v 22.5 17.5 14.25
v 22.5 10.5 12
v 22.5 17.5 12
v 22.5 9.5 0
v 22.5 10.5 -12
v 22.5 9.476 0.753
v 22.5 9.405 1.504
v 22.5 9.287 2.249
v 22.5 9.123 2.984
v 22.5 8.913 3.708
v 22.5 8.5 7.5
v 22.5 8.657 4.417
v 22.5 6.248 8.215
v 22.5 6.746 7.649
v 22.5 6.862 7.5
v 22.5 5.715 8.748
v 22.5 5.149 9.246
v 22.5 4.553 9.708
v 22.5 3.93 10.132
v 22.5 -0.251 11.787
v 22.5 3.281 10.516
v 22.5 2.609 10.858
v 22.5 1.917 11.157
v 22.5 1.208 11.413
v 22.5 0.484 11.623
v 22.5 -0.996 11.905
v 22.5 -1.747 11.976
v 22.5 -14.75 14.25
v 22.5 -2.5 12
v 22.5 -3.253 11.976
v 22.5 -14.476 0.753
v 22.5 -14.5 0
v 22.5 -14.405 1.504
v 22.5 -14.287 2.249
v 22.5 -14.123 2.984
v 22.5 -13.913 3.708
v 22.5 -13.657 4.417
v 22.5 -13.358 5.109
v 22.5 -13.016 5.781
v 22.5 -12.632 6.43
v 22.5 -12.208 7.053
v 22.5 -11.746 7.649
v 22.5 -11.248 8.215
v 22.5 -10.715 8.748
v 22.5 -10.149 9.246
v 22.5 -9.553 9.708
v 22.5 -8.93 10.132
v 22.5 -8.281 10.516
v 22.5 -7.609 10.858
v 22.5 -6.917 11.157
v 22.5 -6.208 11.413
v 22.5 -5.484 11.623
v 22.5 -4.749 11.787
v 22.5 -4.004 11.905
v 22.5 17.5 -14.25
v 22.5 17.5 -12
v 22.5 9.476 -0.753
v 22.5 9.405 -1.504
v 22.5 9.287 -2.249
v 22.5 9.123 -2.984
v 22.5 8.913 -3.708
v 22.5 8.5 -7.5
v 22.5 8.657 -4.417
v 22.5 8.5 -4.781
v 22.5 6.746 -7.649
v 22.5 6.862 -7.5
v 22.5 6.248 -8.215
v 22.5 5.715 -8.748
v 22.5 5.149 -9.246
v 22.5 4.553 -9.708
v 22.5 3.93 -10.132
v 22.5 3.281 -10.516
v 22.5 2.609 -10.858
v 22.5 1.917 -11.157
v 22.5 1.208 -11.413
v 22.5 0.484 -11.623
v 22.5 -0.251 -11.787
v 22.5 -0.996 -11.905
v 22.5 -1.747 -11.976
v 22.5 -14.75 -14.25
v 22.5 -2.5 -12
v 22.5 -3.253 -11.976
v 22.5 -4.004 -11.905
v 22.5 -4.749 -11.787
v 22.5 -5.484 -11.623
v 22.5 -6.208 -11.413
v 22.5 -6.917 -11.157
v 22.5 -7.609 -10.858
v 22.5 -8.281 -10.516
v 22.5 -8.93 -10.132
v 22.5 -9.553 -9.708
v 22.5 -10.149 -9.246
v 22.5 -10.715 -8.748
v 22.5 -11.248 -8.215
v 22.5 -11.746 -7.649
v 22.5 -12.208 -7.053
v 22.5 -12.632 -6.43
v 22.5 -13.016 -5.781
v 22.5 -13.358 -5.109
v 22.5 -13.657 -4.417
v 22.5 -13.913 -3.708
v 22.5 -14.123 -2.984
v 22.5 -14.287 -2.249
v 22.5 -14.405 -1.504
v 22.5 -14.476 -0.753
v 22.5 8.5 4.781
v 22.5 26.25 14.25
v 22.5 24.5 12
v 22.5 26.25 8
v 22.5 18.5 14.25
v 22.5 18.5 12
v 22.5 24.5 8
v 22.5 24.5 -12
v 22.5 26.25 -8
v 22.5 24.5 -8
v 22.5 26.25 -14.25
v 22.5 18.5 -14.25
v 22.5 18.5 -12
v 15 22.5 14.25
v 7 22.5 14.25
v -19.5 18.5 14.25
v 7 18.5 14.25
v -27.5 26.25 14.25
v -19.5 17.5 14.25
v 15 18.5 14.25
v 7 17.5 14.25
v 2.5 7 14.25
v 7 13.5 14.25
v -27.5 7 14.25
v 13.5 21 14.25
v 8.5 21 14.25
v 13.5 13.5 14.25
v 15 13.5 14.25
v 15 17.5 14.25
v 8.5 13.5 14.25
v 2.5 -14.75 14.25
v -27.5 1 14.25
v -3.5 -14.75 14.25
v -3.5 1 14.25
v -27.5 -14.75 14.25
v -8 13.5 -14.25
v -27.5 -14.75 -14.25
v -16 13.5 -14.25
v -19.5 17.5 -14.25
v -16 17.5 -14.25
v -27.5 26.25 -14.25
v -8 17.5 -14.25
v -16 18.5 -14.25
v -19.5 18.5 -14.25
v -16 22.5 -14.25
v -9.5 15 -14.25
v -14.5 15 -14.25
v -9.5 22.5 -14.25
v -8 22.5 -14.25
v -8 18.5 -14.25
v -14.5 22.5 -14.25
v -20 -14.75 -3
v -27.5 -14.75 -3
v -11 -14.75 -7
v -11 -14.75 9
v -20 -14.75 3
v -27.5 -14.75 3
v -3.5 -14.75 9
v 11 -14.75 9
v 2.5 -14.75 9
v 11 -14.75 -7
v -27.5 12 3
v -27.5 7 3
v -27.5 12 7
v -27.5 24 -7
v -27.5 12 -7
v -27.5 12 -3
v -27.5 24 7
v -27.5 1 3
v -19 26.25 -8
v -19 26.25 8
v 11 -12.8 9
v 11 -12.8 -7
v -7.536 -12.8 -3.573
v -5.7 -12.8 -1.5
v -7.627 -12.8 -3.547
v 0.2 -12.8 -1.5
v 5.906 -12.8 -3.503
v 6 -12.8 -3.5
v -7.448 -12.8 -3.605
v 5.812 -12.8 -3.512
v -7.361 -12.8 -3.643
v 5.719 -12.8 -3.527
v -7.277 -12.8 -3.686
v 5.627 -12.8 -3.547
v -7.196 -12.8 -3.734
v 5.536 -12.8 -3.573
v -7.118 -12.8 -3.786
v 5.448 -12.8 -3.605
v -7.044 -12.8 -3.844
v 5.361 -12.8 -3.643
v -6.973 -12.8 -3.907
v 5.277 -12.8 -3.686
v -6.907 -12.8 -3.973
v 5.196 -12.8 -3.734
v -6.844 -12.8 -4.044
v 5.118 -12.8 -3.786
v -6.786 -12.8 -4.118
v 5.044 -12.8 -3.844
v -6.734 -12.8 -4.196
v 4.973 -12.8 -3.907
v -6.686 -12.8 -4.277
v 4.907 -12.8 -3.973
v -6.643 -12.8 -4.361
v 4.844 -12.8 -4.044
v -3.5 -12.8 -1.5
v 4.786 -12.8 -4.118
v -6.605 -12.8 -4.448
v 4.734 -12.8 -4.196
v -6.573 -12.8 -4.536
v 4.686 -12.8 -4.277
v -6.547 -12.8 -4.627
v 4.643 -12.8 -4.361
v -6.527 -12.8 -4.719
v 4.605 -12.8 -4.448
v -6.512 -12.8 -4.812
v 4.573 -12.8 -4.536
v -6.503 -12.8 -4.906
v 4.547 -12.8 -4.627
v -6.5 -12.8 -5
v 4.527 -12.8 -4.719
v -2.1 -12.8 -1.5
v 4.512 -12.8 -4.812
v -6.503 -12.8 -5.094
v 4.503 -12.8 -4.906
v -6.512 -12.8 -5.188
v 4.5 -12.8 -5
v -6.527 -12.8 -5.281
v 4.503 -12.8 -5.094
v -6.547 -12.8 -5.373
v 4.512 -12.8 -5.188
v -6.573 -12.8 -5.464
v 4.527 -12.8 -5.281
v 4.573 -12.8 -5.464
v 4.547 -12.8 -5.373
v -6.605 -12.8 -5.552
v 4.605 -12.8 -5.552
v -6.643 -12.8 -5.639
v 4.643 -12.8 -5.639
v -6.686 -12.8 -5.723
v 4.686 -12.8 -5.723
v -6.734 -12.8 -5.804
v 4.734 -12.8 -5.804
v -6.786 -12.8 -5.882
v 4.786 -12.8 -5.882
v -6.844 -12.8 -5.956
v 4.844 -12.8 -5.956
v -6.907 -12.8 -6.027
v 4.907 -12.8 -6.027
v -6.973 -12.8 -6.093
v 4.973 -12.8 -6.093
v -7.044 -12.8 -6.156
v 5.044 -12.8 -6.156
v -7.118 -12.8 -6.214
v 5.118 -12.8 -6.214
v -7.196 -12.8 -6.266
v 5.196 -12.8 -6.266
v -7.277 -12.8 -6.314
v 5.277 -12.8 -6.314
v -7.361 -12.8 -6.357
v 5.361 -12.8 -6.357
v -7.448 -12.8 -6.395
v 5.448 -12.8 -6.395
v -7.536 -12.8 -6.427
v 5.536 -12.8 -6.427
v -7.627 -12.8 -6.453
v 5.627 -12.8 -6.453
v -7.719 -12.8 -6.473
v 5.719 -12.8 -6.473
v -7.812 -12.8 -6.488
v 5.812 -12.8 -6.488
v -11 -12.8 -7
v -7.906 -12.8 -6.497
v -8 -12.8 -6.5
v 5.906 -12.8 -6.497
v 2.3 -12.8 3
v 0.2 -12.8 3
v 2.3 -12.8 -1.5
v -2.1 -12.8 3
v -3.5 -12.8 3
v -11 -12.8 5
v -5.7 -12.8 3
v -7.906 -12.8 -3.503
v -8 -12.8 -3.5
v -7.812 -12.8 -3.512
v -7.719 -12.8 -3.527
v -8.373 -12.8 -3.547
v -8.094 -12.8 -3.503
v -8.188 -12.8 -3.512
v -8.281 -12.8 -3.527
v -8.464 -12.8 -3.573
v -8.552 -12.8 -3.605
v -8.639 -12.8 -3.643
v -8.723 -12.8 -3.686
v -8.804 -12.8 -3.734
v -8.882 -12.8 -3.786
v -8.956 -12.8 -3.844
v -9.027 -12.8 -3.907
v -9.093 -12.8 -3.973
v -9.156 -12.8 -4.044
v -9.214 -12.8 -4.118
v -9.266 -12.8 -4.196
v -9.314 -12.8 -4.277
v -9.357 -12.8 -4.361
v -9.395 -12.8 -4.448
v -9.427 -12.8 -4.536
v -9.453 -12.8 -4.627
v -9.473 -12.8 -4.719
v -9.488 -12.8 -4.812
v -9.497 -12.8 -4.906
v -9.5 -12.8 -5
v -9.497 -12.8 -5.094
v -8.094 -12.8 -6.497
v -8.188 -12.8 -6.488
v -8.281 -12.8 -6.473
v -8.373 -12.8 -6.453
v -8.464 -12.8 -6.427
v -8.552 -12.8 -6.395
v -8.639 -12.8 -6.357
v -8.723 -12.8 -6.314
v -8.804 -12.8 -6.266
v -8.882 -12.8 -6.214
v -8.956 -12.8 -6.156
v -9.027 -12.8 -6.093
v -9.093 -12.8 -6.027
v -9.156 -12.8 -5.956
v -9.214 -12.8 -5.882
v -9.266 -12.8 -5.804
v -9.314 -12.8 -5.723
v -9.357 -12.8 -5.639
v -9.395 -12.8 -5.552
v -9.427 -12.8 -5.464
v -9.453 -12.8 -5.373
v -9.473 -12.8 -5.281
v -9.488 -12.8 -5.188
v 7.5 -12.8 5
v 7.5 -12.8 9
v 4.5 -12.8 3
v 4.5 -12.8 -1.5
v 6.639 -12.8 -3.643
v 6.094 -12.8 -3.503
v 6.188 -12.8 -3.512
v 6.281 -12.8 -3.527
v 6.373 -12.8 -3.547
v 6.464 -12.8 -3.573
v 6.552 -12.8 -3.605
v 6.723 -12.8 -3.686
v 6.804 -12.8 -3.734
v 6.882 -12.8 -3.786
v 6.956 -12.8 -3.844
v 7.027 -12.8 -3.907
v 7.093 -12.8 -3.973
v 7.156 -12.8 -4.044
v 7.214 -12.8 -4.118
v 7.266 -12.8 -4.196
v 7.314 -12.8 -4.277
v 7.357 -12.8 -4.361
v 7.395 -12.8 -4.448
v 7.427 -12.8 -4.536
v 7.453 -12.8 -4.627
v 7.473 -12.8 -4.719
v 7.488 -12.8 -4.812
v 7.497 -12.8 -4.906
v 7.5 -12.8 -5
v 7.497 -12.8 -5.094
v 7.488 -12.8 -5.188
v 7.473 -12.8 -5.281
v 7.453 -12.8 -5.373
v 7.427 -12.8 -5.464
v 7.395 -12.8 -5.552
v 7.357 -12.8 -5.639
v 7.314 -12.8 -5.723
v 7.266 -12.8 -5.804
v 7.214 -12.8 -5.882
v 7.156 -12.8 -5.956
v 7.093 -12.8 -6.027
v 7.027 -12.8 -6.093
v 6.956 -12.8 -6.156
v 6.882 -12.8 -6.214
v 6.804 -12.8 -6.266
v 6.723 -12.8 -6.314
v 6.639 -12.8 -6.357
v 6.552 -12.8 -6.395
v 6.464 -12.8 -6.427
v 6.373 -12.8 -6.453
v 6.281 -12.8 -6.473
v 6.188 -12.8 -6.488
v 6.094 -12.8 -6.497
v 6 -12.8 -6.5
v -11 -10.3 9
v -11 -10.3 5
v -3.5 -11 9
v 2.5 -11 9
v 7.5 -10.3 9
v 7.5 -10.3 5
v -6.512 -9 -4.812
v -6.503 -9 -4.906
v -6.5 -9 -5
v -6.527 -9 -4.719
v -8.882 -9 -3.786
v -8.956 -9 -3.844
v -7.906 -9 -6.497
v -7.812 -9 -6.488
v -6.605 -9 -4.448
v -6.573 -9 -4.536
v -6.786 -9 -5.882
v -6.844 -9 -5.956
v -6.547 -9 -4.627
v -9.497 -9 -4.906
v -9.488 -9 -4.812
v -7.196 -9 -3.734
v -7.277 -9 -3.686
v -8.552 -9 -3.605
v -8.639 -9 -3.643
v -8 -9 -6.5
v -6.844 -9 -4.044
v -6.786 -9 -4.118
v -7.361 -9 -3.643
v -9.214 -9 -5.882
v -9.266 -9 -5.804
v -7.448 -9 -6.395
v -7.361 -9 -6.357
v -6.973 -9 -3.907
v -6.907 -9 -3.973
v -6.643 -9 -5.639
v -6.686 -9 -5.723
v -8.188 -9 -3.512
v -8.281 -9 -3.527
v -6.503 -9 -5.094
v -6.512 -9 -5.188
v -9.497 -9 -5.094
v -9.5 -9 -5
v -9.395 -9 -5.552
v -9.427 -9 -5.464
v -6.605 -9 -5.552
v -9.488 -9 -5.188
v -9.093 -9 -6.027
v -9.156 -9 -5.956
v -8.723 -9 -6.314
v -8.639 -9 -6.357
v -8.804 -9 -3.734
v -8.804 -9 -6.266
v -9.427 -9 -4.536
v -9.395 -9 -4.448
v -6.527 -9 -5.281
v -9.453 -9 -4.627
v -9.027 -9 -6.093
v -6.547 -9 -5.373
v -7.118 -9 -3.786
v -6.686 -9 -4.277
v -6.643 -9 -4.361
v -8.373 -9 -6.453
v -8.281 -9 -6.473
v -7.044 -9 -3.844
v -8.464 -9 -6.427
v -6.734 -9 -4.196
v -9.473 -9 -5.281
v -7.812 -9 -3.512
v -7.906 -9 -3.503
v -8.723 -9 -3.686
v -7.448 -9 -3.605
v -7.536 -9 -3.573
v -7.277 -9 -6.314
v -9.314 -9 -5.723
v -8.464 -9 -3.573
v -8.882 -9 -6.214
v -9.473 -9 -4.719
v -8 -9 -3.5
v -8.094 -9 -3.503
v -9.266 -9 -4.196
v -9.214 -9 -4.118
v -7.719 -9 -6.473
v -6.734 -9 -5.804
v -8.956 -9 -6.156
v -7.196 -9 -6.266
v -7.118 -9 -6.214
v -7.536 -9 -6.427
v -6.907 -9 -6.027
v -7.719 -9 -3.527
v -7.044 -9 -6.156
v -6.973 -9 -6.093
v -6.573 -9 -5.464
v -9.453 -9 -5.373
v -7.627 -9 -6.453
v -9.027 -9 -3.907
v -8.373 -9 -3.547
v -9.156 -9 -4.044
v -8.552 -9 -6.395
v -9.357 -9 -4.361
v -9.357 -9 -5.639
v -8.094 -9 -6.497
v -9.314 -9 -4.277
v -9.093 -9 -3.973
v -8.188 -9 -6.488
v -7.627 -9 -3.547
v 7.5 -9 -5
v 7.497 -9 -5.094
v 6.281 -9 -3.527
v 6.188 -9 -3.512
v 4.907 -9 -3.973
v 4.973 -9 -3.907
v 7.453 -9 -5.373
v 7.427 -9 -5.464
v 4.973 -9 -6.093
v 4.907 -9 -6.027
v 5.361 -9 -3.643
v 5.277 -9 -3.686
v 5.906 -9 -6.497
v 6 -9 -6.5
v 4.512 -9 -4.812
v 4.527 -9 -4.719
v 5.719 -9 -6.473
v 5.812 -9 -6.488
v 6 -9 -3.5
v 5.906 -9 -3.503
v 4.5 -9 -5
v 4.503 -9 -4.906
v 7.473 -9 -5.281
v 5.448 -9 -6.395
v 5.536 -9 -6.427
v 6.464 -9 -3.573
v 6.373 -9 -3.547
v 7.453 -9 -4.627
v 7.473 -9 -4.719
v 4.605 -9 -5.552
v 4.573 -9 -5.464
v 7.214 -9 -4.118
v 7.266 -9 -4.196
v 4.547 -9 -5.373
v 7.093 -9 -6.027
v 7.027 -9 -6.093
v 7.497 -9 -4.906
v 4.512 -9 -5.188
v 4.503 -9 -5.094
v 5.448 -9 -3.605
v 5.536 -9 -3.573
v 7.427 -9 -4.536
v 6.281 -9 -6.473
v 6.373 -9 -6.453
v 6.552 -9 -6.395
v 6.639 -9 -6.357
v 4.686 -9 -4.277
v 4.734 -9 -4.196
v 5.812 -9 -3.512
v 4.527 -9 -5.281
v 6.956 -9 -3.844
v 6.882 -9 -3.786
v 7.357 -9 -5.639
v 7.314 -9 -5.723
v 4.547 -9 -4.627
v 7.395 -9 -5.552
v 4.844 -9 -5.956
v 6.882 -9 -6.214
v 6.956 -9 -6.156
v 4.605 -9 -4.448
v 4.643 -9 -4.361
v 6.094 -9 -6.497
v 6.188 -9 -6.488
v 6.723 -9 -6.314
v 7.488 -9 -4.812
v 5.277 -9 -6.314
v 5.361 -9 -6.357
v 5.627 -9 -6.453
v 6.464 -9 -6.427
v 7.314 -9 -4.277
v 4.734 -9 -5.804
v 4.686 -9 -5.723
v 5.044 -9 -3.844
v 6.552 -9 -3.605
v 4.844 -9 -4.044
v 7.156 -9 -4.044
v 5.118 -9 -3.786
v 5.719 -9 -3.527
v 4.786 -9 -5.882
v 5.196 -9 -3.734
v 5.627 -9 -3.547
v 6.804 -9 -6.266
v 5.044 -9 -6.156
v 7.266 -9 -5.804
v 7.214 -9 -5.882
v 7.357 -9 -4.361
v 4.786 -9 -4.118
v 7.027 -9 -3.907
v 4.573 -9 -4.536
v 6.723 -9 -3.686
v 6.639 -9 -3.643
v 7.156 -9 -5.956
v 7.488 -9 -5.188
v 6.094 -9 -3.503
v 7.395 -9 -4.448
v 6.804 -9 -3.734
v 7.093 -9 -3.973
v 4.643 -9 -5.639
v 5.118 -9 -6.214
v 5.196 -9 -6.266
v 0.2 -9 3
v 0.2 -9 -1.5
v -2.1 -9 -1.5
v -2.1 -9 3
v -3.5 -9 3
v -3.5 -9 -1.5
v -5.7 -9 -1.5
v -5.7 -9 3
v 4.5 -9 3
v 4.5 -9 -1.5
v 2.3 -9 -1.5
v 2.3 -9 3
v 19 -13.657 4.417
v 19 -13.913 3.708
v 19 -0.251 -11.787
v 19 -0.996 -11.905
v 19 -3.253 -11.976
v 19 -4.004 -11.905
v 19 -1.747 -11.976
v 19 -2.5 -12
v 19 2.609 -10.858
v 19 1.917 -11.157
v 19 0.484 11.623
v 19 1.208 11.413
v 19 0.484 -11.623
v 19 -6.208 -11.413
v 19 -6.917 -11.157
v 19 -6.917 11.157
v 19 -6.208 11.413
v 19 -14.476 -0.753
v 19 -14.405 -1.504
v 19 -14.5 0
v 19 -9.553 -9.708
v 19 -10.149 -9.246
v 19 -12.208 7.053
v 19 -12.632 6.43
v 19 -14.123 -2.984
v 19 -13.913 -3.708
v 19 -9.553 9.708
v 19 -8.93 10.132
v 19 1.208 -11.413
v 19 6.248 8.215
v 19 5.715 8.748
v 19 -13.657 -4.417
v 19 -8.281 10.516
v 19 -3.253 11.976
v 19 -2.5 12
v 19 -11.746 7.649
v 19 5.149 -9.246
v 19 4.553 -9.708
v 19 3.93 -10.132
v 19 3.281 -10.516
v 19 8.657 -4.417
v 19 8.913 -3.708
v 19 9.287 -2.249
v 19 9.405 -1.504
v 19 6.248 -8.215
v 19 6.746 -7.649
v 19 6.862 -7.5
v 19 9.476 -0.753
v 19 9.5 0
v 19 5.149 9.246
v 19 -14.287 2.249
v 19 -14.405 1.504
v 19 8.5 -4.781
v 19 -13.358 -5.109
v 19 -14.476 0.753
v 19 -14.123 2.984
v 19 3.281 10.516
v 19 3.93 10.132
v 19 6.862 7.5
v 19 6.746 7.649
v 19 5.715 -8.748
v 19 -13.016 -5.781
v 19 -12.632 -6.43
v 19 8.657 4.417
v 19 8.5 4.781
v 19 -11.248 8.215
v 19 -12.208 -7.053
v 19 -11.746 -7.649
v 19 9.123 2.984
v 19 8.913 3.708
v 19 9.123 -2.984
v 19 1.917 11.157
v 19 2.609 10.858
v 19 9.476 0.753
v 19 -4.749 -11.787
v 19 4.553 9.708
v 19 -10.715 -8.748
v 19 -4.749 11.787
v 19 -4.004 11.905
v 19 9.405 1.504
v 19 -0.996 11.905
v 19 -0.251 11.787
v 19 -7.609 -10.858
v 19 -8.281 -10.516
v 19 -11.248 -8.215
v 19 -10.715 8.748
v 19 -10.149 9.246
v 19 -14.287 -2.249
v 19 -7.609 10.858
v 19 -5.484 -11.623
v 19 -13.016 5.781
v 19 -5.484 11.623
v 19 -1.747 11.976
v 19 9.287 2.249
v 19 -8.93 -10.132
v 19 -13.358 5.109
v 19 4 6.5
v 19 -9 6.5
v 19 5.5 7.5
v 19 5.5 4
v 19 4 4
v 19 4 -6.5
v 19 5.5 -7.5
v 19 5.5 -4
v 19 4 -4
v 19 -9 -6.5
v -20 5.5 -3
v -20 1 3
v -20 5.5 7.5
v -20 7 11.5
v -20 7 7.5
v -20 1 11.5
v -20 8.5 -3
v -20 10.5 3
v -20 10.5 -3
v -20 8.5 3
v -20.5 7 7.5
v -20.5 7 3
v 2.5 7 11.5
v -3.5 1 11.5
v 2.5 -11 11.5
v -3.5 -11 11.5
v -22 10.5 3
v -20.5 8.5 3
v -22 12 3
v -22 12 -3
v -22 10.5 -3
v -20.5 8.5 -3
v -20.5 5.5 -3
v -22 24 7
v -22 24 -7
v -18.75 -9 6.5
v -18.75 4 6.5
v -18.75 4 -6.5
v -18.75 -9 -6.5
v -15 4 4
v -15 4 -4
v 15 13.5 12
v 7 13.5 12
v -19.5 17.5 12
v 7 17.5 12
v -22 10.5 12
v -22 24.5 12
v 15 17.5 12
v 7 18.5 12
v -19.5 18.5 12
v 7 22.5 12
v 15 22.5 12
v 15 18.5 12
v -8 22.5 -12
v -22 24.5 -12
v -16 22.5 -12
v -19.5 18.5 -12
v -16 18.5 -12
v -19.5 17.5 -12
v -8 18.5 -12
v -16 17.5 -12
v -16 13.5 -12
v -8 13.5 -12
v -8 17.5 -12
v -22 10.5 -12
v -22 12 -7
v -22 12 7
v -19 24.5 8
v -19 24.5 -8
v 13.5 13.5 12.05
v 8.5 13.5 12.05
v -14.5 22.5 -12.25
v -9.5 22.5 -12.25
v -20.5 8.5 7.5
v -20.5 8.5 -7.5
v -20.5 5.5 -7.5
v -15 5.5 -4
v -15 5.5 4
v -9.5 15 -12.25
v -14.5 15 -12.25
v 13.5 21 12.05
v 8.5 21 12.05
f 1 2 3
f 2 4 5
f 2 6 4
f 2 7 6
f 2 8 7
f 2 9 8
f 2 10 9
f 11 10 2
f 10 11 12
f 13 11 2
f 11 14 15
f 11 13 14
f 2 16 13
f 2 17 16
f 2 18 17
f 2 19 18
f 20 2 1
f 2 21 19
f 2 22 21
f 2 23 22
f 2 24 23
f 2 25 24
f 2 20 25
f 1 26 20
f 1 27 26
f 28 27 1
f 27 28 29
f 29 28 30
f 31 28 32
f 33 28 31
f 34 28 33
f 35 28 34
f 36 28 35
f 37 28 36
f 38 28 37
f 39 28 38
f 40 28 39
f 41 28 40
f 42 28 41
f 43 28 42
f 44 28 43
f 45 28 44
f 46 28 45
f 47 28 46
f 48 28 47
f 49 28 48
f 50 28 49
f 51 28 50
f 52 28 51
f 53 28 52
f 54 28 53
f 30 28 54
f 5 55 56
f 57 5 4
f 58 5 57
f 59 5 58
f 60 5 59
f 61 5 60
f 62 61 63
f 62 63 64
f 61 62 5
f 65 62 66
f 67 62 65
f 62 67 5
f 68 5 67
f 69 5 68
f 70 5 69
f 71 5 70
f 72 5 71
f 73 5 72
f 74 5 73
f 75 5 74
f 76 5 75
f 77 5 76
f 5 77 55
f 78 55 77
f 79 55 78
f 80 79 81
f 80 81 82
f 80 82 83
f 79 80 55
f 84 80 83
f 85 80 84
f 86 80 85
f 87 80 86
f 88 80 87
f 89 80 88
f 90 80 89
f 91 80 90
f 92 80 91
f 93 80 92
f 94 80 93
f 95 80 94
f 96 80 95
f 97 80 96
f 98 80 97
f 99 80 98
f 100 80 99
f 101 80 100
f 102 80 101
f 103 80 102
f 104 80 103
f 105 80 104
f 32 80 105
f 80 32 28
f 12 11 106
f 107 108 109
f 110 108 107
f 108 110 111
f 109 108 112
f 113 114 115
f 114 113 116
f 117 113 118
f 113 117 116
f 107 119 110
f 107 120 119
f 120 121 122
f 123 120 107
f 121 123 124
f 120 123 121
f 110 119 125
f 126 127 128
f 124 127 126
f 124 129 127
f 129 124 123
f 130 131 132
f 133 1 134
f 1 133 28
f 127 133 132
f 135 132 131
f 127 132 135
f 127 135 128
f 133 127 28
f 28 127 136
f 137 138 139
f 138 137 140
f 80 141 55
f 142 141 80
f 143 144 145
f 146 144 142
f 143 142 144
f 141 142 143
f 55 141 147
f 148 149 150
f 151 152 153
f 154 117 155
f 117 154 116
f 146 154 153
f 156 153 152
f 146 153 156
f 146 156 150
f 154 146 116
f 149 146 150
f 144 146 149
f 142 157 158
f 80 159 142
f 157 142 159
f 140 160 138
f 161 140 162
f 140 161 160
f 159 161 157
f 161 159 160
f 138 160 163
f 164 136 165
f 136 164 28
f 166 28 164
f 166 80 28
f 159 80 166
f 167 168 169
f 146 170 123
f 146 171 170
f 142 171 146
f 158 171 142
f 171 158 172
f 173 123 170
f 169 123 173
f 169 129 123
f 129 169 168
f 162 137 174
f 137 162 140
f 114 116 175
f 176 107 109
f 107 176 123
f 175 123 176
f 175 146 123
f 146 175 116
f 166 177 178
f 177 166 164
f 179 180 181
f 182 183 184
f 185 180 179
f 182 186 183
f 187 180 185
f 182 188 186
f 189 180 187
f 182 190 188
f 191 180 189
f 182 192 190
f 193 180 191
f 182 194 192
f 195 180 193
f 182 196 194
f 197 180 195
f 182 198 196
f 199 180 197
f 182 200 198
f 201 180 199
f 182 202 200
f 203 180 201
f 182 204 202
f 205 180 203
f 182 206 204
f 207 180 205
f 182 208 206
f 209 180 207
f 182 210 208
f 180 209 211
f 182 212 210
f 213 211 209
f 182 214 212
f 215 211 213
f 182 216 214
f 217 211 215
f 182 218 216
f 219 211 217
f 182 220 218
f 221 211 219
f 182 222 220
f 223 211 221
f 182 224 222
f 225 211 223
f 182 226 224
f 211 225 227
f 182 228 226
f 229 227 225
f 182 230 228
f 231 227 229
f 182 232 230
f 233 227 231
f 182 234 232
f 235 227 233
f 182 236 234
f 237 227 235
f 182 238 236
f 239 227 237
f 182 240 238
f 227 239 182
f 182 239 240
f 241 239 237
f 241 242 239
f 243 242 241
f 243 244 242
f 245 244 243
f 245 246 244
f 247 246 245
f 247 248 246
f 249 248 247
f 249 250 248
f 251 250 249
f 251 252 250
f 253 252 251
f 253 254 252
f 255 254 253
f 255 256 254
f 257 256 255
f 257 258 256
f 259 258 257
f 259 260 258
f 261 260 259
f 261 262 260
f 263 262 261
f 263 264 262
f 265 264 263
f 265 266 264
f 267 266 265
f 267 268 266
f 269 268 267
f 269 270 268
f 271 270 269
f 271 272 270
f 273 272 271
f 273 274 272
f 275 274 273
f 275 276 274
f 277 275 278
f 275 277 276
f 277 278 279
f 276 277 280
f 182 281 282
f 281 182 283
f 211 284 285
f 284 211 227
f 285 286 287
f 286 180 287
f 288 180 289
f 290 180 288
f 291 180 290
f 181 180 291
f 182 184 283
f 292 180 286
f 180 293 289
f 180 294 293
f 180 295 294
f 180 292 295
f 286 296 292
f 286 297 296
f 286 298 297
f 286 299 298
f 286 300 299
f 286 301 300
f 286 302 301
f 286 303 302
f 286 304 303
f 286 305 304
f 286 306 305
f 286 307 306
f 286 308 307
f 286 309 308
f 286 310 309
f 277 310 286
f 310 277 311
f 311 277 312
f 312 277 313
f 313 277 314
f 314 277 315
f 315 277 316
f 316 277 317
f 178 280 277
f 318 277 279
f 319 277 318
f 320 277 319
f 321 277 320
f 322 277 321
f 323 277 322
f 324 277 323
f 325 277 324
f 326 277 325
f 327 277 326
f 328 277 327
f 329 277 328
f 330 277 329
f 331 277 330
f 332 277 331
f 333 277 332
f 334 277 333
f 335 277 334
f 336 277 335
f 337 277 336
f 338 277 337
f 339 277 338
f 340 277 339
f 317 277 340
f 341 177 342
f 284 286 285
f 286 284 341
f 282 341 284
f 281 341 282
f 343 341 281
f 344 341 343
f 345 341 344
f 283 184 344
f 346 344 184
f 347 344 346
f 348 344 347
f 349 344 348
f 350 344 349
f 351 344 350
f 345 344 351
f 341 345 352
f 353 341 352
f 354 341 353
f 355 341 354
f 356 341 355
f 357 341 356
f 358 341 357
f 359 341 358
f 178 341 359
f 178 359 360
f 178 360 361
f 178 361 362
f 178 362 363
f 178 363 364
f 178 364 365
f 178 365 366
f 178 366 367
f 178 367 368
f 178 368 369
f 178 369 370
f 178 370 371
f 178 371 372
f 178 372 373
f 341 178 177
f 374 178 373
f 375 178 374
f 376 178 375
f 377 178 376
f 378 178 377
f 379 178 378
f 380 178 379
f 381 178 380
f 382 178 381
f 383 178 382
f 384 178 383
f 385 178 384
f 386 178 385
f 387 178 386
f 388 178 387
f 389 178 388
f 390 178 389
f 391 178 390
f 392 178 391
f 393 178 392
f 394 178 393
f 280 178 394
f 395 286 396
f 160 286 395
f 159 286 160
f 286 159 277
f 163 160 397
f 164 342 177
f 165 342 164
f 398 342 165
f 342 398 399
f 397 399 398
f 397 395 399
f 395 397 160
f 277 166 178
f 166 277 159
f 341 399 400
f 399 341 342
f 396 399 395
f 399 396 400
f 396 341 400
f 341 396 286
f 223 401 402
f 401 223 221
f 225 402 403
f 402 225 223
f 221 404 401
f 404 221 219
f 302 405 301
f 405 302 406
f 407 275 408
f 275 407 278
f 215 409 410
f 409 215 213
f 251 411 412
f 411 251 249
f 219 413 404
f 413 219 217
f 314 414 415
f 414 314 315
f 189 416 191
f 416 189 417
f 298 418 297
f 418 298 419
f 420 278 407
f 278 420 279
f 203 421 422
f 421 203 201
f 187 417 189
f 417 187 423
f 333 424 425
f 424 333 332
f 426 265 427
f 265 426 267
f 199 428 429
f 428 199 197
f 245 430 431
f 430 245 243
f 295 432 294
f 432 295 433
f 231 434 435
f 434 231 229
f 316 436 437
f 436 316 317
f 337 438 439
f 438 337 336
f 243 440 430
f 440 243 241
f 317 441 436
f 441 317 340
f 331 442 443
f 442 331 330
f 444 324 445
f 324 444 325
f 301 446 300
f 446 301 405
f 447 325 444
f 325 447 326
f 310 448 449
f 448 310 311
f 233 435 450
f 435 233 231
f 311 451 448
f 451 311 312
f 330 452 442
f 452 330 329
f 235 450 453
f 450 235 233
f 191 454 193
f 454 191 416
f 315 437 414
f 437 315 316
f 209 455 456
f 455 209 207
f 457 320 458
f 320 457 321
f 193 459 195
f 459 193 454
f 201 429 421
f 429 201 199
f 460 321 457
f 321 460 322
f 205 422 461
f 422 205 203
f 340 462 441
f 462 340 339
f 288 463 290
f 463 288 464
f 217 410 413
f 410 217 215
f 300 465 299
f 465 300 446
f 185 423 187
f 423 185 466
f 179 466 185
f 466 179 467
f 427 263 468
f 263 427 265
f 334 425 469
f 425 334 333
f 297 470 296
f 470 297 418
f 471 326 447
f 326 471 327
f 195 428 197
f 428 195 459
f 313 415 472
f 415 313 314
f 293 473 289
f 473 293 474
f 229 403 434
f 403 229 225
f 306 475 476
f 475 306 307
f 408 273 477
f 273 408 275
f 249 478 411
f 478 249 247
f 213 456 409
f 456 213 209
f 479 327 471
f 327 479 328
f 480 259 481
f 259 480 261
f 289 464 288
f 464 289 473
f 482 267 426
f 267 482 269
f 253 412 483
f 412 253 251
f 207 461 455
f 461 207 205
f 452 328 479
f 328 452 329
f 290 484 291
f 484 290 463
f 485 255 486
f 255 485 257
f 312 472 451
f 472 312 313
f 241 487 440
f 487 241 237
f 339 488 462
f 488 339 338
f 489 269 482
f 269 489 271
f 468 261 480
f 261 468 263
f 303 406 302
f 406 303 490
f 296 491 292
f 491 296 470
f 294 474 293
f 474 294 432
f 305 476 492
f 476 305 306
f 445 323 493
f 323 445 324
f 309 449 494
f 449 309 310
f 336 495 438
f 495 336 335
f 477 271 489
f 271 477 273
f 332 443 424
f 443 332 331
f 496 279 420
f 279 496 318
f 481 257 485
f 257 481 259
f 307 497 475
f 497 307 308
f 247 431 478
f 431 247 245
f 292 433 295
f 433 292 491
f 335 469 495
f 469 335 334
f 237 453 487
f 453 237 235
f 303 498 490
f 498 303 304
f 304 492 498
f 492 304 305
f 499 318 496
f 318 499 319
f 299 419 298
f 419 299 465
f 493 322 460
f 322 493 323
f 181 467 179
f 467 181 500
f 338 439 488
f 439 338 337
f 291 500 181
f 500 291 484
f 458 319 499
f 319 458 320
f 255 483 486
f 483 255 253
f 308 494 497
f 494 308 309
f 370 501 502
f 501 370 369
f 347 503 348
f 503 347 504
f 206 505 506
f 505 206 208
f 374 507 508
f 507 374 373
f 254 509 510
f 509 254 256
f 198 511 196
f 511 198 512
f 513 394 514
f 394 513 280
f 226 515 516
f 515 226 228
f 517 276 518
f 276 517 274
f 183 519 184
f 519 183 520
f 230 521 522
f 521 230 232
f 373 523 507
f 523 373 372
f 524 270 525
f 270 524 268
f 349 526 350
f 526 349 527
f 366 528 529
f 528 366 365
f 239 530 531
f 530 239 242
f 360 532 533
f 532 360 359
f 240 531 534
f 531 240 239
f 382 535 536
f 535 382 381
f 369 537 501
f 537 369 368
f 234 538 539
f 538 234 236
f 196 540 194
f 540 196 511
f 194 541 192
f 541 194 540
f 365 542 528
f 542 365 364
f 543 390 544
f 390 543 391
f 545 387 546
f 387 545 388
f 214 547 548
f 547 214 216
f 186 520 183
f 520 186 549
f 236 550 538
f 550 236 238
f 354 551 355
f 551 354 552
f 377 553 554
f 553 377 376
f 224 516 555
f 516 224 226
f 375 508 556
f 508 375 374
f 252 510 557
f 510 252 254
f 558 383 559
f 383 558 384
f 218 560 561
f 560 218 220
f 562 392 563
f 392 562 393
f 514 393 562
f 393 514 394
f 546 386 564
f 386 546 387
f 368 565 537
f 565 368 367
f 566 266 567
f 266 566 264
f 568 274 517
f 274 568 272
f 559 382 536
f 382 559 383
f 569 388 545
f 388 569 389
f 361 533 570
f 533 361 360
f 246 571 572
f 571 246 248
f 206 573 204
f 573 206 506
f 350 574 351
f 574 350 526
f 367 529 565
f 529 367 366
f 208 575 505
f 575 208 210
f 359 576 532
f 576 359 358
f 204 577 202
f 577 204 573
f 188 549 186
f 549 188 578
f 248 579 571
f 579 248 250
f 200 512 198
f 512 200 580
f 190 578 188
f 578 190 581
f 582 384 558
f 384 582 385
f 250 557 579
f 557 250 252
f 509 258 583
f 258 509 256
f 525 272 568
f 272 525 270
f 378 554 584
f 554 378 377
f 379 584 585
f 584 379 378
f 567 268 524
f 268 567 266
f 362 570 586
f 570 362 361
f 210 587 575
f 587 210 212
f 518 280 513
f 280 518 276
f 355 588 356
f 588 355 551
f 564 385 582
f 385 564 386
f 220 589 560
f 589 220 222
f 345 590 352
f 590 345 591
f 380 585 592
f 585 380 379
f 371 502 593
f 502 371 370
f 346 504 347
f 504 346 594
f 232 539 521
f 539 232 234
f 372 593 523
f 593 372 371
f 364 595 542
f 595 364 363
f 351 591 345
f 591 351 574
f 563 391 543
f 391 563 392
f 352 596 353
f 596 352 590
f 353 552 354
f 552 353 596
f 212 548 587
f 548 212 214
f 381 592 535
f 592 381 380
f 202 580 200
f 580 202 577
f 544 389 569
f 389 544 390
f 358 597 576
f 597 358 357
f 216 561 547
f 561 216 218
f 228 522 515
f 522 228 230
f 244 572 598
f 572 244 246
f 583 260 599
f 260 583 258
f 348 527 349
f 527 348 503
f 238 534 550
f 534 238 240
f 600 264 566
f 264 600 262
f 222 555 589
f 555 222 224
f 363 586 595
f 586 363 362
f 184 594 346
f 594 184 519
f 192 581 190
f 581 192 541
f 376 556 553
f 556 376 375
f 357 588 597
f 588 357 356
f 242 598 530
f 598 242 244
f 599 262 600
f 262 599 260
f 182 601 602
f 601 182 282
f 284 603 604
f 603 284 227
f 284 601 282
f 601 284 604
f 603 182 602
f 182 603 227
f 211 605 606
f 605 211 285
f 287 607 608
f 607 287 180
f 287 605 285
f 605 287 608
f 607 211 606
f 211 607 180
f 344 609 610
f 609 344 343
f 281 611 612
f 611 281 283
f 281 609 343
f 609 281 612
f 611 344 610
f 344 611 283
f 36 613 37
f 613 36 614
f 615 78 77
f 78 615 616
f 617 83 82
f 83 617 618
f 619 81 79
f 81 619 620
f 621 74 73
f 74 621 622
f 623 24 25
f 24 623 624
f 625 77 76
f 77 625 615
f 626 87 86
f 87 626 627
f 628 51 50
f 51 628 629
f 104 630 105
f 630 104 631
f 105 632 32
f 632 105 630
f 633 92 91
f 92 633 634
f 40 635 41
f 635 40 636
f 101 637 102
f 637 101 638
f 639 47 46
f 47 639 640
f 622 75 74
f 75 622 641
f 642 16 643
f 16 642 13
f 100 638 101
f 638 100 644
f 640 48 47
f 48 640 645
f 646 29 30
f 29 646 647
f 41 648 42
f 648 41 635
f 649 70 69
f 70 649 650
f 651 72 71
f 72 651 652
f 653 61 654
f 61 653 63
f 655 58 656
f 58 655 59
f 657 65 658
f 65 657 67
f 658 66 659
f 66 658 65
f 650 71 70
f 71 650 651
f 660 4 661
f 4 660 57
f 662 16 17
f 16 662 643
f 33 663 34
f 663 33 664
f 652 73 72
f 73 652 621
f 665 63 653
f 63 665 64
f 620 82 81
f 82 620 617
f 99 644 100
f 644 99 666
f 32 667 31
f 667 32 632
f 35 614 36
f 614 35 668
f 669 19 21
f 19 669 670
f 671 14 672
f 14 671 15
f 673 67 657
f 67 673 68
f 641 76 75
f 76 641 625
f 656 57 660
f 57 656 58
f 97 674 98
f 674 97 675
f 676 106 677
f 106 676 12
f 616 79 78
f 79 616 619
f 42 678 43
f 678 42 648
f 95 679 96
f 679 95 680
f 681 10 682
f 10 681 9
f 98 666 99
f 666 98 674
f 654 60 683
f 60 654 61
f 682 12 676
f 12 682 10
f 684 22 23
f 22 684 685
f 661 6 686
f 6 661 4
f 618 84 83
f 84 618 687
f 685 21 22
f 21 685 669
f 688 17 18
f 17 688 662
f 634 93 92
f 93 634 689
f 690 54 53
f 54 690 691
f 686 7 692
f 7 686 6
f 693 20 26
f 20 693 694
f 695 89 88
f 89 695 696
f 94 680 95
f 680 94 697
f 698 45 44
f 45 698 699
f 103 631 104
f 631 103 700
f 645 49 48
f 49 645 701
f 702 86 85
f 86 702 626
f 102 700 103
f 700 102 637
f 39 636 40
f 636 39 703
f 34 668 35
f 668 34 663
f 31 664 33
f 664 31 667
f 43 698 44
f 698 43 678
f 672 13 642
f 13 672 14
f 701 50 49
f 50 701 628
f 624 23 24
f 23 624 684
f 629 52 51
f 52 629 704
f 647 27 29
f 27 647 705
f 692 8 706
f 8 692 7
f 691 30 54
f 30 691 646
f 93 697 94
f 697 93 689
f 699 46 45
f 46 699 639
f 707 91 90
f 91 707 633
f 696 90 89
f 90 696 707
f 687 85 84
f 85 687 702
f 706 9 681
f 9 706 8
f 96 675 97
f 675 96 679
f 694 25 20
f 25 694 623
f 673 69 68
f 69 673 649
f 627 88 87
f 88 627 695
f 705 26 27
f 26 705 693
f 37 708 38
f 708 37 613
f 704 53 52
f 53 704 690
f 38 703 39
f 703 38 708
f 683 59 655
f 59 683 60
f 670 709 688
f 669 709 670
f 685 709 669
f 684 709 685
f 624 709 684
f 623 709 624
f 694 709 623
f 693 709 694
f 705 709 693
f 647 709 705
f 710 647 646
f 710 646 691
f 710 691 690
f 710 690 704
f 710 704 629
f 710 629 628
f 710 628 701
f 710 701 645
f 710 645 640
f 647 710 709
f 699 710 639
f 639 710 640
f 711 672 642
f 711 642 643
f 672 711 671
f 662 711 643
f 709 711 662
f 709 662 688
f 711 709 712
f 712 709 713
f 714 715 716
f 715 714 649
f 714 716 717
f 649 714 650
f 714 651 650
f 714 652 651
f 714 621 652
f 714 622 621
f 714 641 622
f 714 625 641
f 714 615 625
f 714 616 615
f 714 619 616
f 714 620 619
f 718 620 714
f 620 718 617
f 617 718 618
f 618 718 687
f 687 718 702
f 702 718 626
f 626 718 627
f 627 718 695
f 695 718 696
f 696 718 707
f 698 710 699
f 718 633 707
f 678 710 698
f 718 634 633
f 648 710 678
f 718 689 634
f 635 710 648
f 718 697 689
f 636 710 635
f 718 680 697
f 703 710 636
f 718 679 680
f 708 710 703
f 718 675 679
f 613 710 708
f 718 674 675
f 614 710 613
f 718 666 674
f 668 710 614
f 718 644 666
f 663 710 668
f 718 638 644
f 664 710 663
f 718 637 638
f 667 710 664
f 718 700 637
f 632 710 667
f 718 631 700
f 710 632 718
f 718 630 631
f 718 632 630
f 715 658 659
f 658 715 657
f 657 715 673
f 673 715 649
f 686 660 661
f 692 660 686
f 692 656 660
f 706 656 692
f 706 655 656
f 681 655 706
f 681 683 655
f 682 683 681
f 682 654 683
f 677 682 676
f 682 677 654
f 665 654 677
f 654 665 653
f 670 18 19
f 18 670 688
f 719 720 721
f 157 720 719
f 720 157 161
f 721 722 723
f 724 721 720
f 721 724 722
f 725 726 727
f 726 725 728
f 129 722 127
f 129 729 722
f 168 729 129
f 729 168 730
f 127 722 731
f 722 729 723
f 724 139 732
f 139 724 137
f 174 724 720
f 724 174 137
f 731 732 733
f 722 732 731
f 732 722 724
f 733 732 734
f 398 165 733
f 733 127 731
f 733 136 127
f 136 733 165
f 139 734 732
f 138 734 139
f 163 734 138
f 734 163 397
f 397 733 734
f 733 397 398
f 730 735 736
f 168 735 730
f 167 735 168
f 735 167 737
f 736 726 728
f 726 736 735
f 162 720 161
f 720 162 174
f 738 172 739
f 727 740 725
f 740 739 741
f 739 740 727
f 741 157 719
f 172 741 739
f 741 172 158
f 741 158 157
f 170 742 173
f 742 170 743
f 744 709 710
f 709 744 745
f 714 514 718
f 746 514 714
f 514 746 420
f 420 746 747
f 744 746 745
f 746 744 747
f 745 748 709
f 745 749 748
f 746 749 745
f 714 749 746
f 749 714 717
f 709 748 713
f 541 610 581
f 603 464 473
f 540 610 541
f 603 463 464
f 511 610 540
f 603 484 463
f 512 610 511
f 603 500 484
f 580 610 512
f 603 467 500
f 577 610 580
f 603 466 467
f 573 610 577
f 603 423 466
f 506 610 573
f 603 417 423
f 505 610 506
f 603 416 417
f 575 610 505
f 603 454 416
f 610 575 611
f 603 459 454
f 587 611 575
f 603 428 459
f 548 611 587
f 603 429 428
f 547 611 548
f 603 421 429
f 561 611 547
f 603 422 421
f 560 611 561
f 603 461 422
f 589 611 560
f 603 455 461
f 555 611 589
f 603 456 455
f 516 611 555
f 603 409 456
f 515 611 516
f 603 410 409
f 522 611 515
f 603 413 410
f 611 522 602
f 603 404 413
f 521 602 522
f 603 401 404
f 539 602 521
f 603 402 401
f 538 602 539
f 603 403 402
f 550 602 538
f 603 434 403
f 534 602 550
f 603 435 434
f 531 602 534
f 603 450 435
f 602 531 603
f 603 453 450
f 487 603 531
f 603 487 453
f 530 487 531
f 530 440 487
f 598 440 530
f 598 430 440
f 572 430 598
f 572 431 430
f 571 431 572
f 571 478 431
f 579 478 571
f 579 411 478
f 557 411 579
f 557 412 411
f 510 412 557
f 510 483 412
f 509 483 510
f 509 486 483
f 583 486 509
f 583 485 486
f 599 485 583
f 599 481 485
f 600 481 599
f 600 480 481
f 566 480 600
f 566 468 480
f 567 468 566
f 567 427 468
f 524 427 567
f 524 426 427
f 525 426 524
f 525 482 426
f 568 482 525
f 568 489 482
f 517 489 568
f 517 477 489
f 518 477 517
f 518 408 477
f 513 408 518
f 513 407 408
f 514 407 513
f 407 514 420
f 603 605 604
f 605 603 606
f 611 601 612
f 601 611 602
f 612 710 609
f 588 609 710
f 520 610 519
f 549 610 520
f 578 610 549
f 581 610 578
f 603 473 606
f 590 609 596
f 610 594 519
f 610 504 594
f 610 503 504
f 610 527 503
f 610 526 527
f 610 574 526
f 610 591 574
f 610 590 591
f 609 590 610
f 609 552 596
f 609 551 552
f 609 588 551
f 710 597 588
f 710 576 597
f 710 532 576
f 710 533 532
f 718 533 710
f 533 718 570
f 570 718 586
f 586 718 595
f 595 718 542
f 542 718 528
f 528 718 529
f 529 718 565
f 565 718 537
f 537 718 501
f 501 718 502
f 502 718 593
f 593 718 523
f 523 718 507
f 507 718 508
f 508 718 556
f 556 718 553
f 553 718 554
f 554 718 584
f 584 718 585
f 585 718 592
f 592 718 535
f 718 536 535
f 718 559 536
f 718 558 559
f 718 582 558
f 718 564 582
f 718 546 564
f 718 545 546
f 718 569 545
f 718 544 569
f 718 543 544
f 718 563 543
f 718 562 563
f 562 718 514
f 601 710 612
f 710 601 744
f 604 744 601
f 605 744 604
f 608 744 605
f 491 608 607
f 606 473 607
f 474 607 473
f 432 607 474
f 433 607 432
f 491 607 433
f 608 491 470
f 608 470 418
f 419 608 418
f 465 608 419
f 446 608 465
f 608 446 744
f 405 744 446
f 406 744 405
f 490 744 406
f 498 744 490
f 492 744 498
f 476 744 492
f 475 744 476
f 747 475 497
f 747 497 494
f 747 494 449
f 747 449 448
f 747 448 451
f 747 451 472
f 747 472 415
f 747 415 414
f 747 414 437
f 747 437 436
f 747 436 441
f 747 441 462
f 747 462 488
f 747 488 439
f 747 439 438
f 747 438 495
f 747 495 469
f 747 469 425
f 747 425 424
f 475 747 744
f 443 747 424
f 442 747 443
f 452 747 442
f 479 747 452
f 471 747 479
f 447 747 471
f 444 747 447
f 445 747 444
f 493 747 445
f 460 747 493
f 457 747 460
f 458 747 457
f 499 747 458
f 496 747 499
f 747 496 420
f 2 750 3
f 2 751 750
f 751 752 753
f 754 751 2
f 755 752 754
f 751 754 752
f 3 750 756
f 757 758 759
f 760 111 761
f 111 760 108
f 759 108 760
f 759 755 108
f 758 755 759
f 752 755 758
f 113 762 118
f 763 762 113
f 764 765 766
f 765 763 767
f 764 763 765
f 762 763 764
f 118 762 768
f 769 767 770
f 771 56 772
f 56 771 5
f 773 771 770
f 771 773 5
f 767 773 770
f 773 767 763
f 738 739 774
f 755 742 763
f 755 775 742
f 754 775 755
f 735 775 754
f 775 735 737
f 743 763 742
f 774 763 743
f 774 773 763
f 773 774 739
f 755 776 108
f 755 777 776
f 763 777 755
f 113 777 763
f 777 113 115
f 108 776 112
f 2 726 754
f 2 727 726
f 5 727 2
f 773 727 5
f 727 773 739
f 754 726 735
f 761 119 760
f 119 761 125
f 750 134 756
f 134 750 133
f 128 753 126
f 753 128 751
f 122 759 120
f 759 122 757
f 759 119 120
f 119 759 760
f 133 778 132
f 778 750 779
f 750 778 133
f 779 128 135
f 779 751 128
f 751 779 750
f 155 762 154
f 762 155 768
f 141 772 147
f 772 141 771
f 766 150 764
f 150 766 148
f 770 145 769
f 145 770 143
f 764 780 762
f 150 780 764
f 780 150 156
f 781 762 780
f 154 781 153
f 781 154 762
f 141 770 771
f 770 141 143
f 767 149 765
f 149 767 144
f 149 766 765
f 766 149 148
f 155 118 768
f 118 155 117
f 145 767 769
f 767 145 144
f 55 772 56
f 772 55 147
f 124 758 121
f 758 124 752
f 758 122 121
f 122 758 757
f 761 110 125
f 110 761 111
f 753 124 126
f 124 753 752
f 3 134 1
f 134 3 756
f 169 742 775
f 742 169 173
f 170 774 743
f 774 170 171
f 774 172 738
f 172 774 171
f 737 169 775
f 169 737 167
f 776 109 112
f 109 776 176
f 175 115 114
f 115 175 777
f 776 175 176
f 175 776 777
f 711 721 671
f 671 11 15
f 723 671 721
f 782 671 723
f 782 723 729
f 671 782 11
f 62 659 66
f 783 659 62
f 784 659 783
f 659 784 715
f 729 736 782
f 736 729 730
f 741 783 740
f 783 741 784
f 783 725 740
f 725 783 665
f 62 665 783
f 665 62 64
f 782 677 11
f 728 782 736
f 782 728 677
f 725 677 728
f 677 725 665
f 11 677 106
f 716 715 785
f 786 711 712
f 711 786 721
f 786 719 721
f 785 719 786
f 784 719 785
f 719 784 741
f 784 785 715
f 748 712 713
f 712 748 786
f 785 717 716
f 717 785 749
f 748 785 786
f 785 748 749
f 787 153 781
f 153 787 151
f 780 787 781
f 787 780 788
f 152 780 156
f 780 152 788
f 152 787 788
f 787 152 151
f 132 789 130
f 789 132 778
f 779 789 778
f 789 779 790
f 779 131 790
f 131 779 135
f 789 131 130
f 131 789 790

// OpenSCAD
height_pd1=12;
height_pd=12;
 
$fn = 100; 
 w_m5=26.0;// width of m5stick
 h_m5=45;// height of m5stick
 t_m5=16; // thickness of m5stick
 wall=1.5; //wall of the body
 tol=0.5; //tolerance for printing
 
 difference(){
 union() {

     
      translate([0,0,0]) 
     cube ([h_m5,w_m5+tol+3,w_m5+tol+2], center=true);  //cuvette holder
     
           translate([-5,0,0]) 
     cube ([h_m5,w_m5+tol+3,w_m5+tol+2], center=true);  // extra cuvette holder bottom
     
     
       translate([0,18,0]) 
       cube ([h_m5, t_m5+tol, w_m5+tol+2], center=true);
     
            translate([-5,18,0]) 
       cube ([h_m5, t_m5+tol, w_m5+tol+2], center=true); //extra bottom part
     
     
      

 
     
 }
 union() {
      

         
          translate([21.0,-2.5,0])
     rotate([0,90,0])
     cylinder(d=24, h=4, center=true);// space for cap
     
  translate([-10,-14.8,-7])
rotate([90,0,0])
ams2();   //space for AMS spectral sensor
     
           translate([-24.0,4,8]) 
            cube ([8, 6, 13], center=true);// for wiring4
    
             translate([-14.0,4,13]) 
            cube ([22, 6, 3], center=true);// for wiring3

      
                  translate([-0.5,-14,10]) 
            cube ([6, 6, 3], center=true);// for wiring3c
     
            translate([-0.5,-4,13]) 
            cube ([6, 22, 3], center=true);// for wiring2
     
           translate([-24.0,4,0]) 
            cube ([8, 40, 6], center=true);// for wiring1 bottom
     
     translate([4,-2.5,0]) 
          cube ([h_m5+tol,13.0,13.0], center=true); //cuvette
            color([1,0,0.5])
        translate([0.5,17.5,0]) 
            cube ([ h_m5, t_m5-wall-0.5, w_m5-wall-0.5], center=true);//m5stickc
            
translate([11.0,18,13]) 
cube ([8, 9, 3], center=true);// for m5 buttonB

 
 
 translate([-12,18,-13]) 
cube ([8, 9, 3], center=true);// for m5 buttonC
 
 
  translate([3,18,-13]) 
cube ([h_m5, 1, 3], center=true);// for m5 slit1


translate([3,18,13]) 
cube ([h_m5, 1, 3], center=true);// for m5 slit2
 
               color([0.5,0,0.5])
        translate([-20,18,0]) 
           cube ([20,12,14], center=true); 
     
        translate([3,28,0]) 
           cube([44,10,16], center=true);//oled screen
     
             translate([2,7,0]) 
     cube ([45,3,15], center=true);  //optical_filter
     
     
             translate([5,3,0]) 
           cube([40,8,8], center=true);//optical sensor window 
   
 }
 }


module buttons(){
 translate([-12,19,-13.25]) 
cube ([5, 8, 2], center=true);// button for m5 buttonC
 
 
 translate([11.0,16.5,13.15]) 
cube ([5, 9, 2.2], center=true);// for m5 buttonB
}

module ams1(){

union(){
    translate([0,0,-1])
cube ([22.5,20.5,2.0]);  // PCB


color([0.4,0.6,0.1])
translate([3.4,3,-2.0])
union(){
translate([0,0,0])
cylinder(d=2.9, h=10);//screw hole1

translate([15.1,0,0])
cylinder(d=2.9, h=10);//screw hole2
}
}
union(){


color([0.4,0.6,0.5])

translate([0,8.5,-2.5])
union(){
    
    translate([10-0.1,0,0])
cube ([2.2,3.5,4]); //Ams sensor
translate([6.1,0,0])    
cube ([1.5,3.5,4]); //LED1
    translate([14.1,0,0])    
cube ([1.5,3.5,4]); //LED2
    
}
}


}

module ams2(){

union(){
       translate([-1,0,-2])
cube ([22,16,5.0]);  // PCB

       translate([-1.0,12,-4.5])
cube ([18.5,4,3.0]);  // PCB holes 


}
union(){

    
color([0.4,0.6,0.1])
translate([2,2,-4.0])
union(){
translate([0,0,-2])
cylinder(d=3, h=10);//screw hole1

translate([14,0,-2])
cylinder(d=3, h=10);//screw hole2
}
color([0.4,0.6,0.5])

translate([0,5.5,-4.5])
union(){
    
    translate([8-0.1,0,-2])
cube ([2.3,4.5,10]); //Ams sensor
translate([4.3,0,-2])    
cube ([2.2,4.5,10]); //LED1
    translate([12.3,0,-2])    
cube ([2.2,4.5,10]); //LED2
    
}
}
}






 module cap(){
difference(){
 union() {
 rotate([0,90,0])
         translate([0,0,0])
     cylinder(d=23.5, h=12, center=true);
     
 }

 union() {
              translate([-0.1,0.0,0.0])
 rotate([0,90,0])

     cylinder(d=20, h=12, center=true);
     }
 
 }
 }
 
//translate([30,-3,0])
//cap();
 
  //translate([-10,-12,-7])
//rotate([90,0,0])
//ams2();
 
 buttons();

     
